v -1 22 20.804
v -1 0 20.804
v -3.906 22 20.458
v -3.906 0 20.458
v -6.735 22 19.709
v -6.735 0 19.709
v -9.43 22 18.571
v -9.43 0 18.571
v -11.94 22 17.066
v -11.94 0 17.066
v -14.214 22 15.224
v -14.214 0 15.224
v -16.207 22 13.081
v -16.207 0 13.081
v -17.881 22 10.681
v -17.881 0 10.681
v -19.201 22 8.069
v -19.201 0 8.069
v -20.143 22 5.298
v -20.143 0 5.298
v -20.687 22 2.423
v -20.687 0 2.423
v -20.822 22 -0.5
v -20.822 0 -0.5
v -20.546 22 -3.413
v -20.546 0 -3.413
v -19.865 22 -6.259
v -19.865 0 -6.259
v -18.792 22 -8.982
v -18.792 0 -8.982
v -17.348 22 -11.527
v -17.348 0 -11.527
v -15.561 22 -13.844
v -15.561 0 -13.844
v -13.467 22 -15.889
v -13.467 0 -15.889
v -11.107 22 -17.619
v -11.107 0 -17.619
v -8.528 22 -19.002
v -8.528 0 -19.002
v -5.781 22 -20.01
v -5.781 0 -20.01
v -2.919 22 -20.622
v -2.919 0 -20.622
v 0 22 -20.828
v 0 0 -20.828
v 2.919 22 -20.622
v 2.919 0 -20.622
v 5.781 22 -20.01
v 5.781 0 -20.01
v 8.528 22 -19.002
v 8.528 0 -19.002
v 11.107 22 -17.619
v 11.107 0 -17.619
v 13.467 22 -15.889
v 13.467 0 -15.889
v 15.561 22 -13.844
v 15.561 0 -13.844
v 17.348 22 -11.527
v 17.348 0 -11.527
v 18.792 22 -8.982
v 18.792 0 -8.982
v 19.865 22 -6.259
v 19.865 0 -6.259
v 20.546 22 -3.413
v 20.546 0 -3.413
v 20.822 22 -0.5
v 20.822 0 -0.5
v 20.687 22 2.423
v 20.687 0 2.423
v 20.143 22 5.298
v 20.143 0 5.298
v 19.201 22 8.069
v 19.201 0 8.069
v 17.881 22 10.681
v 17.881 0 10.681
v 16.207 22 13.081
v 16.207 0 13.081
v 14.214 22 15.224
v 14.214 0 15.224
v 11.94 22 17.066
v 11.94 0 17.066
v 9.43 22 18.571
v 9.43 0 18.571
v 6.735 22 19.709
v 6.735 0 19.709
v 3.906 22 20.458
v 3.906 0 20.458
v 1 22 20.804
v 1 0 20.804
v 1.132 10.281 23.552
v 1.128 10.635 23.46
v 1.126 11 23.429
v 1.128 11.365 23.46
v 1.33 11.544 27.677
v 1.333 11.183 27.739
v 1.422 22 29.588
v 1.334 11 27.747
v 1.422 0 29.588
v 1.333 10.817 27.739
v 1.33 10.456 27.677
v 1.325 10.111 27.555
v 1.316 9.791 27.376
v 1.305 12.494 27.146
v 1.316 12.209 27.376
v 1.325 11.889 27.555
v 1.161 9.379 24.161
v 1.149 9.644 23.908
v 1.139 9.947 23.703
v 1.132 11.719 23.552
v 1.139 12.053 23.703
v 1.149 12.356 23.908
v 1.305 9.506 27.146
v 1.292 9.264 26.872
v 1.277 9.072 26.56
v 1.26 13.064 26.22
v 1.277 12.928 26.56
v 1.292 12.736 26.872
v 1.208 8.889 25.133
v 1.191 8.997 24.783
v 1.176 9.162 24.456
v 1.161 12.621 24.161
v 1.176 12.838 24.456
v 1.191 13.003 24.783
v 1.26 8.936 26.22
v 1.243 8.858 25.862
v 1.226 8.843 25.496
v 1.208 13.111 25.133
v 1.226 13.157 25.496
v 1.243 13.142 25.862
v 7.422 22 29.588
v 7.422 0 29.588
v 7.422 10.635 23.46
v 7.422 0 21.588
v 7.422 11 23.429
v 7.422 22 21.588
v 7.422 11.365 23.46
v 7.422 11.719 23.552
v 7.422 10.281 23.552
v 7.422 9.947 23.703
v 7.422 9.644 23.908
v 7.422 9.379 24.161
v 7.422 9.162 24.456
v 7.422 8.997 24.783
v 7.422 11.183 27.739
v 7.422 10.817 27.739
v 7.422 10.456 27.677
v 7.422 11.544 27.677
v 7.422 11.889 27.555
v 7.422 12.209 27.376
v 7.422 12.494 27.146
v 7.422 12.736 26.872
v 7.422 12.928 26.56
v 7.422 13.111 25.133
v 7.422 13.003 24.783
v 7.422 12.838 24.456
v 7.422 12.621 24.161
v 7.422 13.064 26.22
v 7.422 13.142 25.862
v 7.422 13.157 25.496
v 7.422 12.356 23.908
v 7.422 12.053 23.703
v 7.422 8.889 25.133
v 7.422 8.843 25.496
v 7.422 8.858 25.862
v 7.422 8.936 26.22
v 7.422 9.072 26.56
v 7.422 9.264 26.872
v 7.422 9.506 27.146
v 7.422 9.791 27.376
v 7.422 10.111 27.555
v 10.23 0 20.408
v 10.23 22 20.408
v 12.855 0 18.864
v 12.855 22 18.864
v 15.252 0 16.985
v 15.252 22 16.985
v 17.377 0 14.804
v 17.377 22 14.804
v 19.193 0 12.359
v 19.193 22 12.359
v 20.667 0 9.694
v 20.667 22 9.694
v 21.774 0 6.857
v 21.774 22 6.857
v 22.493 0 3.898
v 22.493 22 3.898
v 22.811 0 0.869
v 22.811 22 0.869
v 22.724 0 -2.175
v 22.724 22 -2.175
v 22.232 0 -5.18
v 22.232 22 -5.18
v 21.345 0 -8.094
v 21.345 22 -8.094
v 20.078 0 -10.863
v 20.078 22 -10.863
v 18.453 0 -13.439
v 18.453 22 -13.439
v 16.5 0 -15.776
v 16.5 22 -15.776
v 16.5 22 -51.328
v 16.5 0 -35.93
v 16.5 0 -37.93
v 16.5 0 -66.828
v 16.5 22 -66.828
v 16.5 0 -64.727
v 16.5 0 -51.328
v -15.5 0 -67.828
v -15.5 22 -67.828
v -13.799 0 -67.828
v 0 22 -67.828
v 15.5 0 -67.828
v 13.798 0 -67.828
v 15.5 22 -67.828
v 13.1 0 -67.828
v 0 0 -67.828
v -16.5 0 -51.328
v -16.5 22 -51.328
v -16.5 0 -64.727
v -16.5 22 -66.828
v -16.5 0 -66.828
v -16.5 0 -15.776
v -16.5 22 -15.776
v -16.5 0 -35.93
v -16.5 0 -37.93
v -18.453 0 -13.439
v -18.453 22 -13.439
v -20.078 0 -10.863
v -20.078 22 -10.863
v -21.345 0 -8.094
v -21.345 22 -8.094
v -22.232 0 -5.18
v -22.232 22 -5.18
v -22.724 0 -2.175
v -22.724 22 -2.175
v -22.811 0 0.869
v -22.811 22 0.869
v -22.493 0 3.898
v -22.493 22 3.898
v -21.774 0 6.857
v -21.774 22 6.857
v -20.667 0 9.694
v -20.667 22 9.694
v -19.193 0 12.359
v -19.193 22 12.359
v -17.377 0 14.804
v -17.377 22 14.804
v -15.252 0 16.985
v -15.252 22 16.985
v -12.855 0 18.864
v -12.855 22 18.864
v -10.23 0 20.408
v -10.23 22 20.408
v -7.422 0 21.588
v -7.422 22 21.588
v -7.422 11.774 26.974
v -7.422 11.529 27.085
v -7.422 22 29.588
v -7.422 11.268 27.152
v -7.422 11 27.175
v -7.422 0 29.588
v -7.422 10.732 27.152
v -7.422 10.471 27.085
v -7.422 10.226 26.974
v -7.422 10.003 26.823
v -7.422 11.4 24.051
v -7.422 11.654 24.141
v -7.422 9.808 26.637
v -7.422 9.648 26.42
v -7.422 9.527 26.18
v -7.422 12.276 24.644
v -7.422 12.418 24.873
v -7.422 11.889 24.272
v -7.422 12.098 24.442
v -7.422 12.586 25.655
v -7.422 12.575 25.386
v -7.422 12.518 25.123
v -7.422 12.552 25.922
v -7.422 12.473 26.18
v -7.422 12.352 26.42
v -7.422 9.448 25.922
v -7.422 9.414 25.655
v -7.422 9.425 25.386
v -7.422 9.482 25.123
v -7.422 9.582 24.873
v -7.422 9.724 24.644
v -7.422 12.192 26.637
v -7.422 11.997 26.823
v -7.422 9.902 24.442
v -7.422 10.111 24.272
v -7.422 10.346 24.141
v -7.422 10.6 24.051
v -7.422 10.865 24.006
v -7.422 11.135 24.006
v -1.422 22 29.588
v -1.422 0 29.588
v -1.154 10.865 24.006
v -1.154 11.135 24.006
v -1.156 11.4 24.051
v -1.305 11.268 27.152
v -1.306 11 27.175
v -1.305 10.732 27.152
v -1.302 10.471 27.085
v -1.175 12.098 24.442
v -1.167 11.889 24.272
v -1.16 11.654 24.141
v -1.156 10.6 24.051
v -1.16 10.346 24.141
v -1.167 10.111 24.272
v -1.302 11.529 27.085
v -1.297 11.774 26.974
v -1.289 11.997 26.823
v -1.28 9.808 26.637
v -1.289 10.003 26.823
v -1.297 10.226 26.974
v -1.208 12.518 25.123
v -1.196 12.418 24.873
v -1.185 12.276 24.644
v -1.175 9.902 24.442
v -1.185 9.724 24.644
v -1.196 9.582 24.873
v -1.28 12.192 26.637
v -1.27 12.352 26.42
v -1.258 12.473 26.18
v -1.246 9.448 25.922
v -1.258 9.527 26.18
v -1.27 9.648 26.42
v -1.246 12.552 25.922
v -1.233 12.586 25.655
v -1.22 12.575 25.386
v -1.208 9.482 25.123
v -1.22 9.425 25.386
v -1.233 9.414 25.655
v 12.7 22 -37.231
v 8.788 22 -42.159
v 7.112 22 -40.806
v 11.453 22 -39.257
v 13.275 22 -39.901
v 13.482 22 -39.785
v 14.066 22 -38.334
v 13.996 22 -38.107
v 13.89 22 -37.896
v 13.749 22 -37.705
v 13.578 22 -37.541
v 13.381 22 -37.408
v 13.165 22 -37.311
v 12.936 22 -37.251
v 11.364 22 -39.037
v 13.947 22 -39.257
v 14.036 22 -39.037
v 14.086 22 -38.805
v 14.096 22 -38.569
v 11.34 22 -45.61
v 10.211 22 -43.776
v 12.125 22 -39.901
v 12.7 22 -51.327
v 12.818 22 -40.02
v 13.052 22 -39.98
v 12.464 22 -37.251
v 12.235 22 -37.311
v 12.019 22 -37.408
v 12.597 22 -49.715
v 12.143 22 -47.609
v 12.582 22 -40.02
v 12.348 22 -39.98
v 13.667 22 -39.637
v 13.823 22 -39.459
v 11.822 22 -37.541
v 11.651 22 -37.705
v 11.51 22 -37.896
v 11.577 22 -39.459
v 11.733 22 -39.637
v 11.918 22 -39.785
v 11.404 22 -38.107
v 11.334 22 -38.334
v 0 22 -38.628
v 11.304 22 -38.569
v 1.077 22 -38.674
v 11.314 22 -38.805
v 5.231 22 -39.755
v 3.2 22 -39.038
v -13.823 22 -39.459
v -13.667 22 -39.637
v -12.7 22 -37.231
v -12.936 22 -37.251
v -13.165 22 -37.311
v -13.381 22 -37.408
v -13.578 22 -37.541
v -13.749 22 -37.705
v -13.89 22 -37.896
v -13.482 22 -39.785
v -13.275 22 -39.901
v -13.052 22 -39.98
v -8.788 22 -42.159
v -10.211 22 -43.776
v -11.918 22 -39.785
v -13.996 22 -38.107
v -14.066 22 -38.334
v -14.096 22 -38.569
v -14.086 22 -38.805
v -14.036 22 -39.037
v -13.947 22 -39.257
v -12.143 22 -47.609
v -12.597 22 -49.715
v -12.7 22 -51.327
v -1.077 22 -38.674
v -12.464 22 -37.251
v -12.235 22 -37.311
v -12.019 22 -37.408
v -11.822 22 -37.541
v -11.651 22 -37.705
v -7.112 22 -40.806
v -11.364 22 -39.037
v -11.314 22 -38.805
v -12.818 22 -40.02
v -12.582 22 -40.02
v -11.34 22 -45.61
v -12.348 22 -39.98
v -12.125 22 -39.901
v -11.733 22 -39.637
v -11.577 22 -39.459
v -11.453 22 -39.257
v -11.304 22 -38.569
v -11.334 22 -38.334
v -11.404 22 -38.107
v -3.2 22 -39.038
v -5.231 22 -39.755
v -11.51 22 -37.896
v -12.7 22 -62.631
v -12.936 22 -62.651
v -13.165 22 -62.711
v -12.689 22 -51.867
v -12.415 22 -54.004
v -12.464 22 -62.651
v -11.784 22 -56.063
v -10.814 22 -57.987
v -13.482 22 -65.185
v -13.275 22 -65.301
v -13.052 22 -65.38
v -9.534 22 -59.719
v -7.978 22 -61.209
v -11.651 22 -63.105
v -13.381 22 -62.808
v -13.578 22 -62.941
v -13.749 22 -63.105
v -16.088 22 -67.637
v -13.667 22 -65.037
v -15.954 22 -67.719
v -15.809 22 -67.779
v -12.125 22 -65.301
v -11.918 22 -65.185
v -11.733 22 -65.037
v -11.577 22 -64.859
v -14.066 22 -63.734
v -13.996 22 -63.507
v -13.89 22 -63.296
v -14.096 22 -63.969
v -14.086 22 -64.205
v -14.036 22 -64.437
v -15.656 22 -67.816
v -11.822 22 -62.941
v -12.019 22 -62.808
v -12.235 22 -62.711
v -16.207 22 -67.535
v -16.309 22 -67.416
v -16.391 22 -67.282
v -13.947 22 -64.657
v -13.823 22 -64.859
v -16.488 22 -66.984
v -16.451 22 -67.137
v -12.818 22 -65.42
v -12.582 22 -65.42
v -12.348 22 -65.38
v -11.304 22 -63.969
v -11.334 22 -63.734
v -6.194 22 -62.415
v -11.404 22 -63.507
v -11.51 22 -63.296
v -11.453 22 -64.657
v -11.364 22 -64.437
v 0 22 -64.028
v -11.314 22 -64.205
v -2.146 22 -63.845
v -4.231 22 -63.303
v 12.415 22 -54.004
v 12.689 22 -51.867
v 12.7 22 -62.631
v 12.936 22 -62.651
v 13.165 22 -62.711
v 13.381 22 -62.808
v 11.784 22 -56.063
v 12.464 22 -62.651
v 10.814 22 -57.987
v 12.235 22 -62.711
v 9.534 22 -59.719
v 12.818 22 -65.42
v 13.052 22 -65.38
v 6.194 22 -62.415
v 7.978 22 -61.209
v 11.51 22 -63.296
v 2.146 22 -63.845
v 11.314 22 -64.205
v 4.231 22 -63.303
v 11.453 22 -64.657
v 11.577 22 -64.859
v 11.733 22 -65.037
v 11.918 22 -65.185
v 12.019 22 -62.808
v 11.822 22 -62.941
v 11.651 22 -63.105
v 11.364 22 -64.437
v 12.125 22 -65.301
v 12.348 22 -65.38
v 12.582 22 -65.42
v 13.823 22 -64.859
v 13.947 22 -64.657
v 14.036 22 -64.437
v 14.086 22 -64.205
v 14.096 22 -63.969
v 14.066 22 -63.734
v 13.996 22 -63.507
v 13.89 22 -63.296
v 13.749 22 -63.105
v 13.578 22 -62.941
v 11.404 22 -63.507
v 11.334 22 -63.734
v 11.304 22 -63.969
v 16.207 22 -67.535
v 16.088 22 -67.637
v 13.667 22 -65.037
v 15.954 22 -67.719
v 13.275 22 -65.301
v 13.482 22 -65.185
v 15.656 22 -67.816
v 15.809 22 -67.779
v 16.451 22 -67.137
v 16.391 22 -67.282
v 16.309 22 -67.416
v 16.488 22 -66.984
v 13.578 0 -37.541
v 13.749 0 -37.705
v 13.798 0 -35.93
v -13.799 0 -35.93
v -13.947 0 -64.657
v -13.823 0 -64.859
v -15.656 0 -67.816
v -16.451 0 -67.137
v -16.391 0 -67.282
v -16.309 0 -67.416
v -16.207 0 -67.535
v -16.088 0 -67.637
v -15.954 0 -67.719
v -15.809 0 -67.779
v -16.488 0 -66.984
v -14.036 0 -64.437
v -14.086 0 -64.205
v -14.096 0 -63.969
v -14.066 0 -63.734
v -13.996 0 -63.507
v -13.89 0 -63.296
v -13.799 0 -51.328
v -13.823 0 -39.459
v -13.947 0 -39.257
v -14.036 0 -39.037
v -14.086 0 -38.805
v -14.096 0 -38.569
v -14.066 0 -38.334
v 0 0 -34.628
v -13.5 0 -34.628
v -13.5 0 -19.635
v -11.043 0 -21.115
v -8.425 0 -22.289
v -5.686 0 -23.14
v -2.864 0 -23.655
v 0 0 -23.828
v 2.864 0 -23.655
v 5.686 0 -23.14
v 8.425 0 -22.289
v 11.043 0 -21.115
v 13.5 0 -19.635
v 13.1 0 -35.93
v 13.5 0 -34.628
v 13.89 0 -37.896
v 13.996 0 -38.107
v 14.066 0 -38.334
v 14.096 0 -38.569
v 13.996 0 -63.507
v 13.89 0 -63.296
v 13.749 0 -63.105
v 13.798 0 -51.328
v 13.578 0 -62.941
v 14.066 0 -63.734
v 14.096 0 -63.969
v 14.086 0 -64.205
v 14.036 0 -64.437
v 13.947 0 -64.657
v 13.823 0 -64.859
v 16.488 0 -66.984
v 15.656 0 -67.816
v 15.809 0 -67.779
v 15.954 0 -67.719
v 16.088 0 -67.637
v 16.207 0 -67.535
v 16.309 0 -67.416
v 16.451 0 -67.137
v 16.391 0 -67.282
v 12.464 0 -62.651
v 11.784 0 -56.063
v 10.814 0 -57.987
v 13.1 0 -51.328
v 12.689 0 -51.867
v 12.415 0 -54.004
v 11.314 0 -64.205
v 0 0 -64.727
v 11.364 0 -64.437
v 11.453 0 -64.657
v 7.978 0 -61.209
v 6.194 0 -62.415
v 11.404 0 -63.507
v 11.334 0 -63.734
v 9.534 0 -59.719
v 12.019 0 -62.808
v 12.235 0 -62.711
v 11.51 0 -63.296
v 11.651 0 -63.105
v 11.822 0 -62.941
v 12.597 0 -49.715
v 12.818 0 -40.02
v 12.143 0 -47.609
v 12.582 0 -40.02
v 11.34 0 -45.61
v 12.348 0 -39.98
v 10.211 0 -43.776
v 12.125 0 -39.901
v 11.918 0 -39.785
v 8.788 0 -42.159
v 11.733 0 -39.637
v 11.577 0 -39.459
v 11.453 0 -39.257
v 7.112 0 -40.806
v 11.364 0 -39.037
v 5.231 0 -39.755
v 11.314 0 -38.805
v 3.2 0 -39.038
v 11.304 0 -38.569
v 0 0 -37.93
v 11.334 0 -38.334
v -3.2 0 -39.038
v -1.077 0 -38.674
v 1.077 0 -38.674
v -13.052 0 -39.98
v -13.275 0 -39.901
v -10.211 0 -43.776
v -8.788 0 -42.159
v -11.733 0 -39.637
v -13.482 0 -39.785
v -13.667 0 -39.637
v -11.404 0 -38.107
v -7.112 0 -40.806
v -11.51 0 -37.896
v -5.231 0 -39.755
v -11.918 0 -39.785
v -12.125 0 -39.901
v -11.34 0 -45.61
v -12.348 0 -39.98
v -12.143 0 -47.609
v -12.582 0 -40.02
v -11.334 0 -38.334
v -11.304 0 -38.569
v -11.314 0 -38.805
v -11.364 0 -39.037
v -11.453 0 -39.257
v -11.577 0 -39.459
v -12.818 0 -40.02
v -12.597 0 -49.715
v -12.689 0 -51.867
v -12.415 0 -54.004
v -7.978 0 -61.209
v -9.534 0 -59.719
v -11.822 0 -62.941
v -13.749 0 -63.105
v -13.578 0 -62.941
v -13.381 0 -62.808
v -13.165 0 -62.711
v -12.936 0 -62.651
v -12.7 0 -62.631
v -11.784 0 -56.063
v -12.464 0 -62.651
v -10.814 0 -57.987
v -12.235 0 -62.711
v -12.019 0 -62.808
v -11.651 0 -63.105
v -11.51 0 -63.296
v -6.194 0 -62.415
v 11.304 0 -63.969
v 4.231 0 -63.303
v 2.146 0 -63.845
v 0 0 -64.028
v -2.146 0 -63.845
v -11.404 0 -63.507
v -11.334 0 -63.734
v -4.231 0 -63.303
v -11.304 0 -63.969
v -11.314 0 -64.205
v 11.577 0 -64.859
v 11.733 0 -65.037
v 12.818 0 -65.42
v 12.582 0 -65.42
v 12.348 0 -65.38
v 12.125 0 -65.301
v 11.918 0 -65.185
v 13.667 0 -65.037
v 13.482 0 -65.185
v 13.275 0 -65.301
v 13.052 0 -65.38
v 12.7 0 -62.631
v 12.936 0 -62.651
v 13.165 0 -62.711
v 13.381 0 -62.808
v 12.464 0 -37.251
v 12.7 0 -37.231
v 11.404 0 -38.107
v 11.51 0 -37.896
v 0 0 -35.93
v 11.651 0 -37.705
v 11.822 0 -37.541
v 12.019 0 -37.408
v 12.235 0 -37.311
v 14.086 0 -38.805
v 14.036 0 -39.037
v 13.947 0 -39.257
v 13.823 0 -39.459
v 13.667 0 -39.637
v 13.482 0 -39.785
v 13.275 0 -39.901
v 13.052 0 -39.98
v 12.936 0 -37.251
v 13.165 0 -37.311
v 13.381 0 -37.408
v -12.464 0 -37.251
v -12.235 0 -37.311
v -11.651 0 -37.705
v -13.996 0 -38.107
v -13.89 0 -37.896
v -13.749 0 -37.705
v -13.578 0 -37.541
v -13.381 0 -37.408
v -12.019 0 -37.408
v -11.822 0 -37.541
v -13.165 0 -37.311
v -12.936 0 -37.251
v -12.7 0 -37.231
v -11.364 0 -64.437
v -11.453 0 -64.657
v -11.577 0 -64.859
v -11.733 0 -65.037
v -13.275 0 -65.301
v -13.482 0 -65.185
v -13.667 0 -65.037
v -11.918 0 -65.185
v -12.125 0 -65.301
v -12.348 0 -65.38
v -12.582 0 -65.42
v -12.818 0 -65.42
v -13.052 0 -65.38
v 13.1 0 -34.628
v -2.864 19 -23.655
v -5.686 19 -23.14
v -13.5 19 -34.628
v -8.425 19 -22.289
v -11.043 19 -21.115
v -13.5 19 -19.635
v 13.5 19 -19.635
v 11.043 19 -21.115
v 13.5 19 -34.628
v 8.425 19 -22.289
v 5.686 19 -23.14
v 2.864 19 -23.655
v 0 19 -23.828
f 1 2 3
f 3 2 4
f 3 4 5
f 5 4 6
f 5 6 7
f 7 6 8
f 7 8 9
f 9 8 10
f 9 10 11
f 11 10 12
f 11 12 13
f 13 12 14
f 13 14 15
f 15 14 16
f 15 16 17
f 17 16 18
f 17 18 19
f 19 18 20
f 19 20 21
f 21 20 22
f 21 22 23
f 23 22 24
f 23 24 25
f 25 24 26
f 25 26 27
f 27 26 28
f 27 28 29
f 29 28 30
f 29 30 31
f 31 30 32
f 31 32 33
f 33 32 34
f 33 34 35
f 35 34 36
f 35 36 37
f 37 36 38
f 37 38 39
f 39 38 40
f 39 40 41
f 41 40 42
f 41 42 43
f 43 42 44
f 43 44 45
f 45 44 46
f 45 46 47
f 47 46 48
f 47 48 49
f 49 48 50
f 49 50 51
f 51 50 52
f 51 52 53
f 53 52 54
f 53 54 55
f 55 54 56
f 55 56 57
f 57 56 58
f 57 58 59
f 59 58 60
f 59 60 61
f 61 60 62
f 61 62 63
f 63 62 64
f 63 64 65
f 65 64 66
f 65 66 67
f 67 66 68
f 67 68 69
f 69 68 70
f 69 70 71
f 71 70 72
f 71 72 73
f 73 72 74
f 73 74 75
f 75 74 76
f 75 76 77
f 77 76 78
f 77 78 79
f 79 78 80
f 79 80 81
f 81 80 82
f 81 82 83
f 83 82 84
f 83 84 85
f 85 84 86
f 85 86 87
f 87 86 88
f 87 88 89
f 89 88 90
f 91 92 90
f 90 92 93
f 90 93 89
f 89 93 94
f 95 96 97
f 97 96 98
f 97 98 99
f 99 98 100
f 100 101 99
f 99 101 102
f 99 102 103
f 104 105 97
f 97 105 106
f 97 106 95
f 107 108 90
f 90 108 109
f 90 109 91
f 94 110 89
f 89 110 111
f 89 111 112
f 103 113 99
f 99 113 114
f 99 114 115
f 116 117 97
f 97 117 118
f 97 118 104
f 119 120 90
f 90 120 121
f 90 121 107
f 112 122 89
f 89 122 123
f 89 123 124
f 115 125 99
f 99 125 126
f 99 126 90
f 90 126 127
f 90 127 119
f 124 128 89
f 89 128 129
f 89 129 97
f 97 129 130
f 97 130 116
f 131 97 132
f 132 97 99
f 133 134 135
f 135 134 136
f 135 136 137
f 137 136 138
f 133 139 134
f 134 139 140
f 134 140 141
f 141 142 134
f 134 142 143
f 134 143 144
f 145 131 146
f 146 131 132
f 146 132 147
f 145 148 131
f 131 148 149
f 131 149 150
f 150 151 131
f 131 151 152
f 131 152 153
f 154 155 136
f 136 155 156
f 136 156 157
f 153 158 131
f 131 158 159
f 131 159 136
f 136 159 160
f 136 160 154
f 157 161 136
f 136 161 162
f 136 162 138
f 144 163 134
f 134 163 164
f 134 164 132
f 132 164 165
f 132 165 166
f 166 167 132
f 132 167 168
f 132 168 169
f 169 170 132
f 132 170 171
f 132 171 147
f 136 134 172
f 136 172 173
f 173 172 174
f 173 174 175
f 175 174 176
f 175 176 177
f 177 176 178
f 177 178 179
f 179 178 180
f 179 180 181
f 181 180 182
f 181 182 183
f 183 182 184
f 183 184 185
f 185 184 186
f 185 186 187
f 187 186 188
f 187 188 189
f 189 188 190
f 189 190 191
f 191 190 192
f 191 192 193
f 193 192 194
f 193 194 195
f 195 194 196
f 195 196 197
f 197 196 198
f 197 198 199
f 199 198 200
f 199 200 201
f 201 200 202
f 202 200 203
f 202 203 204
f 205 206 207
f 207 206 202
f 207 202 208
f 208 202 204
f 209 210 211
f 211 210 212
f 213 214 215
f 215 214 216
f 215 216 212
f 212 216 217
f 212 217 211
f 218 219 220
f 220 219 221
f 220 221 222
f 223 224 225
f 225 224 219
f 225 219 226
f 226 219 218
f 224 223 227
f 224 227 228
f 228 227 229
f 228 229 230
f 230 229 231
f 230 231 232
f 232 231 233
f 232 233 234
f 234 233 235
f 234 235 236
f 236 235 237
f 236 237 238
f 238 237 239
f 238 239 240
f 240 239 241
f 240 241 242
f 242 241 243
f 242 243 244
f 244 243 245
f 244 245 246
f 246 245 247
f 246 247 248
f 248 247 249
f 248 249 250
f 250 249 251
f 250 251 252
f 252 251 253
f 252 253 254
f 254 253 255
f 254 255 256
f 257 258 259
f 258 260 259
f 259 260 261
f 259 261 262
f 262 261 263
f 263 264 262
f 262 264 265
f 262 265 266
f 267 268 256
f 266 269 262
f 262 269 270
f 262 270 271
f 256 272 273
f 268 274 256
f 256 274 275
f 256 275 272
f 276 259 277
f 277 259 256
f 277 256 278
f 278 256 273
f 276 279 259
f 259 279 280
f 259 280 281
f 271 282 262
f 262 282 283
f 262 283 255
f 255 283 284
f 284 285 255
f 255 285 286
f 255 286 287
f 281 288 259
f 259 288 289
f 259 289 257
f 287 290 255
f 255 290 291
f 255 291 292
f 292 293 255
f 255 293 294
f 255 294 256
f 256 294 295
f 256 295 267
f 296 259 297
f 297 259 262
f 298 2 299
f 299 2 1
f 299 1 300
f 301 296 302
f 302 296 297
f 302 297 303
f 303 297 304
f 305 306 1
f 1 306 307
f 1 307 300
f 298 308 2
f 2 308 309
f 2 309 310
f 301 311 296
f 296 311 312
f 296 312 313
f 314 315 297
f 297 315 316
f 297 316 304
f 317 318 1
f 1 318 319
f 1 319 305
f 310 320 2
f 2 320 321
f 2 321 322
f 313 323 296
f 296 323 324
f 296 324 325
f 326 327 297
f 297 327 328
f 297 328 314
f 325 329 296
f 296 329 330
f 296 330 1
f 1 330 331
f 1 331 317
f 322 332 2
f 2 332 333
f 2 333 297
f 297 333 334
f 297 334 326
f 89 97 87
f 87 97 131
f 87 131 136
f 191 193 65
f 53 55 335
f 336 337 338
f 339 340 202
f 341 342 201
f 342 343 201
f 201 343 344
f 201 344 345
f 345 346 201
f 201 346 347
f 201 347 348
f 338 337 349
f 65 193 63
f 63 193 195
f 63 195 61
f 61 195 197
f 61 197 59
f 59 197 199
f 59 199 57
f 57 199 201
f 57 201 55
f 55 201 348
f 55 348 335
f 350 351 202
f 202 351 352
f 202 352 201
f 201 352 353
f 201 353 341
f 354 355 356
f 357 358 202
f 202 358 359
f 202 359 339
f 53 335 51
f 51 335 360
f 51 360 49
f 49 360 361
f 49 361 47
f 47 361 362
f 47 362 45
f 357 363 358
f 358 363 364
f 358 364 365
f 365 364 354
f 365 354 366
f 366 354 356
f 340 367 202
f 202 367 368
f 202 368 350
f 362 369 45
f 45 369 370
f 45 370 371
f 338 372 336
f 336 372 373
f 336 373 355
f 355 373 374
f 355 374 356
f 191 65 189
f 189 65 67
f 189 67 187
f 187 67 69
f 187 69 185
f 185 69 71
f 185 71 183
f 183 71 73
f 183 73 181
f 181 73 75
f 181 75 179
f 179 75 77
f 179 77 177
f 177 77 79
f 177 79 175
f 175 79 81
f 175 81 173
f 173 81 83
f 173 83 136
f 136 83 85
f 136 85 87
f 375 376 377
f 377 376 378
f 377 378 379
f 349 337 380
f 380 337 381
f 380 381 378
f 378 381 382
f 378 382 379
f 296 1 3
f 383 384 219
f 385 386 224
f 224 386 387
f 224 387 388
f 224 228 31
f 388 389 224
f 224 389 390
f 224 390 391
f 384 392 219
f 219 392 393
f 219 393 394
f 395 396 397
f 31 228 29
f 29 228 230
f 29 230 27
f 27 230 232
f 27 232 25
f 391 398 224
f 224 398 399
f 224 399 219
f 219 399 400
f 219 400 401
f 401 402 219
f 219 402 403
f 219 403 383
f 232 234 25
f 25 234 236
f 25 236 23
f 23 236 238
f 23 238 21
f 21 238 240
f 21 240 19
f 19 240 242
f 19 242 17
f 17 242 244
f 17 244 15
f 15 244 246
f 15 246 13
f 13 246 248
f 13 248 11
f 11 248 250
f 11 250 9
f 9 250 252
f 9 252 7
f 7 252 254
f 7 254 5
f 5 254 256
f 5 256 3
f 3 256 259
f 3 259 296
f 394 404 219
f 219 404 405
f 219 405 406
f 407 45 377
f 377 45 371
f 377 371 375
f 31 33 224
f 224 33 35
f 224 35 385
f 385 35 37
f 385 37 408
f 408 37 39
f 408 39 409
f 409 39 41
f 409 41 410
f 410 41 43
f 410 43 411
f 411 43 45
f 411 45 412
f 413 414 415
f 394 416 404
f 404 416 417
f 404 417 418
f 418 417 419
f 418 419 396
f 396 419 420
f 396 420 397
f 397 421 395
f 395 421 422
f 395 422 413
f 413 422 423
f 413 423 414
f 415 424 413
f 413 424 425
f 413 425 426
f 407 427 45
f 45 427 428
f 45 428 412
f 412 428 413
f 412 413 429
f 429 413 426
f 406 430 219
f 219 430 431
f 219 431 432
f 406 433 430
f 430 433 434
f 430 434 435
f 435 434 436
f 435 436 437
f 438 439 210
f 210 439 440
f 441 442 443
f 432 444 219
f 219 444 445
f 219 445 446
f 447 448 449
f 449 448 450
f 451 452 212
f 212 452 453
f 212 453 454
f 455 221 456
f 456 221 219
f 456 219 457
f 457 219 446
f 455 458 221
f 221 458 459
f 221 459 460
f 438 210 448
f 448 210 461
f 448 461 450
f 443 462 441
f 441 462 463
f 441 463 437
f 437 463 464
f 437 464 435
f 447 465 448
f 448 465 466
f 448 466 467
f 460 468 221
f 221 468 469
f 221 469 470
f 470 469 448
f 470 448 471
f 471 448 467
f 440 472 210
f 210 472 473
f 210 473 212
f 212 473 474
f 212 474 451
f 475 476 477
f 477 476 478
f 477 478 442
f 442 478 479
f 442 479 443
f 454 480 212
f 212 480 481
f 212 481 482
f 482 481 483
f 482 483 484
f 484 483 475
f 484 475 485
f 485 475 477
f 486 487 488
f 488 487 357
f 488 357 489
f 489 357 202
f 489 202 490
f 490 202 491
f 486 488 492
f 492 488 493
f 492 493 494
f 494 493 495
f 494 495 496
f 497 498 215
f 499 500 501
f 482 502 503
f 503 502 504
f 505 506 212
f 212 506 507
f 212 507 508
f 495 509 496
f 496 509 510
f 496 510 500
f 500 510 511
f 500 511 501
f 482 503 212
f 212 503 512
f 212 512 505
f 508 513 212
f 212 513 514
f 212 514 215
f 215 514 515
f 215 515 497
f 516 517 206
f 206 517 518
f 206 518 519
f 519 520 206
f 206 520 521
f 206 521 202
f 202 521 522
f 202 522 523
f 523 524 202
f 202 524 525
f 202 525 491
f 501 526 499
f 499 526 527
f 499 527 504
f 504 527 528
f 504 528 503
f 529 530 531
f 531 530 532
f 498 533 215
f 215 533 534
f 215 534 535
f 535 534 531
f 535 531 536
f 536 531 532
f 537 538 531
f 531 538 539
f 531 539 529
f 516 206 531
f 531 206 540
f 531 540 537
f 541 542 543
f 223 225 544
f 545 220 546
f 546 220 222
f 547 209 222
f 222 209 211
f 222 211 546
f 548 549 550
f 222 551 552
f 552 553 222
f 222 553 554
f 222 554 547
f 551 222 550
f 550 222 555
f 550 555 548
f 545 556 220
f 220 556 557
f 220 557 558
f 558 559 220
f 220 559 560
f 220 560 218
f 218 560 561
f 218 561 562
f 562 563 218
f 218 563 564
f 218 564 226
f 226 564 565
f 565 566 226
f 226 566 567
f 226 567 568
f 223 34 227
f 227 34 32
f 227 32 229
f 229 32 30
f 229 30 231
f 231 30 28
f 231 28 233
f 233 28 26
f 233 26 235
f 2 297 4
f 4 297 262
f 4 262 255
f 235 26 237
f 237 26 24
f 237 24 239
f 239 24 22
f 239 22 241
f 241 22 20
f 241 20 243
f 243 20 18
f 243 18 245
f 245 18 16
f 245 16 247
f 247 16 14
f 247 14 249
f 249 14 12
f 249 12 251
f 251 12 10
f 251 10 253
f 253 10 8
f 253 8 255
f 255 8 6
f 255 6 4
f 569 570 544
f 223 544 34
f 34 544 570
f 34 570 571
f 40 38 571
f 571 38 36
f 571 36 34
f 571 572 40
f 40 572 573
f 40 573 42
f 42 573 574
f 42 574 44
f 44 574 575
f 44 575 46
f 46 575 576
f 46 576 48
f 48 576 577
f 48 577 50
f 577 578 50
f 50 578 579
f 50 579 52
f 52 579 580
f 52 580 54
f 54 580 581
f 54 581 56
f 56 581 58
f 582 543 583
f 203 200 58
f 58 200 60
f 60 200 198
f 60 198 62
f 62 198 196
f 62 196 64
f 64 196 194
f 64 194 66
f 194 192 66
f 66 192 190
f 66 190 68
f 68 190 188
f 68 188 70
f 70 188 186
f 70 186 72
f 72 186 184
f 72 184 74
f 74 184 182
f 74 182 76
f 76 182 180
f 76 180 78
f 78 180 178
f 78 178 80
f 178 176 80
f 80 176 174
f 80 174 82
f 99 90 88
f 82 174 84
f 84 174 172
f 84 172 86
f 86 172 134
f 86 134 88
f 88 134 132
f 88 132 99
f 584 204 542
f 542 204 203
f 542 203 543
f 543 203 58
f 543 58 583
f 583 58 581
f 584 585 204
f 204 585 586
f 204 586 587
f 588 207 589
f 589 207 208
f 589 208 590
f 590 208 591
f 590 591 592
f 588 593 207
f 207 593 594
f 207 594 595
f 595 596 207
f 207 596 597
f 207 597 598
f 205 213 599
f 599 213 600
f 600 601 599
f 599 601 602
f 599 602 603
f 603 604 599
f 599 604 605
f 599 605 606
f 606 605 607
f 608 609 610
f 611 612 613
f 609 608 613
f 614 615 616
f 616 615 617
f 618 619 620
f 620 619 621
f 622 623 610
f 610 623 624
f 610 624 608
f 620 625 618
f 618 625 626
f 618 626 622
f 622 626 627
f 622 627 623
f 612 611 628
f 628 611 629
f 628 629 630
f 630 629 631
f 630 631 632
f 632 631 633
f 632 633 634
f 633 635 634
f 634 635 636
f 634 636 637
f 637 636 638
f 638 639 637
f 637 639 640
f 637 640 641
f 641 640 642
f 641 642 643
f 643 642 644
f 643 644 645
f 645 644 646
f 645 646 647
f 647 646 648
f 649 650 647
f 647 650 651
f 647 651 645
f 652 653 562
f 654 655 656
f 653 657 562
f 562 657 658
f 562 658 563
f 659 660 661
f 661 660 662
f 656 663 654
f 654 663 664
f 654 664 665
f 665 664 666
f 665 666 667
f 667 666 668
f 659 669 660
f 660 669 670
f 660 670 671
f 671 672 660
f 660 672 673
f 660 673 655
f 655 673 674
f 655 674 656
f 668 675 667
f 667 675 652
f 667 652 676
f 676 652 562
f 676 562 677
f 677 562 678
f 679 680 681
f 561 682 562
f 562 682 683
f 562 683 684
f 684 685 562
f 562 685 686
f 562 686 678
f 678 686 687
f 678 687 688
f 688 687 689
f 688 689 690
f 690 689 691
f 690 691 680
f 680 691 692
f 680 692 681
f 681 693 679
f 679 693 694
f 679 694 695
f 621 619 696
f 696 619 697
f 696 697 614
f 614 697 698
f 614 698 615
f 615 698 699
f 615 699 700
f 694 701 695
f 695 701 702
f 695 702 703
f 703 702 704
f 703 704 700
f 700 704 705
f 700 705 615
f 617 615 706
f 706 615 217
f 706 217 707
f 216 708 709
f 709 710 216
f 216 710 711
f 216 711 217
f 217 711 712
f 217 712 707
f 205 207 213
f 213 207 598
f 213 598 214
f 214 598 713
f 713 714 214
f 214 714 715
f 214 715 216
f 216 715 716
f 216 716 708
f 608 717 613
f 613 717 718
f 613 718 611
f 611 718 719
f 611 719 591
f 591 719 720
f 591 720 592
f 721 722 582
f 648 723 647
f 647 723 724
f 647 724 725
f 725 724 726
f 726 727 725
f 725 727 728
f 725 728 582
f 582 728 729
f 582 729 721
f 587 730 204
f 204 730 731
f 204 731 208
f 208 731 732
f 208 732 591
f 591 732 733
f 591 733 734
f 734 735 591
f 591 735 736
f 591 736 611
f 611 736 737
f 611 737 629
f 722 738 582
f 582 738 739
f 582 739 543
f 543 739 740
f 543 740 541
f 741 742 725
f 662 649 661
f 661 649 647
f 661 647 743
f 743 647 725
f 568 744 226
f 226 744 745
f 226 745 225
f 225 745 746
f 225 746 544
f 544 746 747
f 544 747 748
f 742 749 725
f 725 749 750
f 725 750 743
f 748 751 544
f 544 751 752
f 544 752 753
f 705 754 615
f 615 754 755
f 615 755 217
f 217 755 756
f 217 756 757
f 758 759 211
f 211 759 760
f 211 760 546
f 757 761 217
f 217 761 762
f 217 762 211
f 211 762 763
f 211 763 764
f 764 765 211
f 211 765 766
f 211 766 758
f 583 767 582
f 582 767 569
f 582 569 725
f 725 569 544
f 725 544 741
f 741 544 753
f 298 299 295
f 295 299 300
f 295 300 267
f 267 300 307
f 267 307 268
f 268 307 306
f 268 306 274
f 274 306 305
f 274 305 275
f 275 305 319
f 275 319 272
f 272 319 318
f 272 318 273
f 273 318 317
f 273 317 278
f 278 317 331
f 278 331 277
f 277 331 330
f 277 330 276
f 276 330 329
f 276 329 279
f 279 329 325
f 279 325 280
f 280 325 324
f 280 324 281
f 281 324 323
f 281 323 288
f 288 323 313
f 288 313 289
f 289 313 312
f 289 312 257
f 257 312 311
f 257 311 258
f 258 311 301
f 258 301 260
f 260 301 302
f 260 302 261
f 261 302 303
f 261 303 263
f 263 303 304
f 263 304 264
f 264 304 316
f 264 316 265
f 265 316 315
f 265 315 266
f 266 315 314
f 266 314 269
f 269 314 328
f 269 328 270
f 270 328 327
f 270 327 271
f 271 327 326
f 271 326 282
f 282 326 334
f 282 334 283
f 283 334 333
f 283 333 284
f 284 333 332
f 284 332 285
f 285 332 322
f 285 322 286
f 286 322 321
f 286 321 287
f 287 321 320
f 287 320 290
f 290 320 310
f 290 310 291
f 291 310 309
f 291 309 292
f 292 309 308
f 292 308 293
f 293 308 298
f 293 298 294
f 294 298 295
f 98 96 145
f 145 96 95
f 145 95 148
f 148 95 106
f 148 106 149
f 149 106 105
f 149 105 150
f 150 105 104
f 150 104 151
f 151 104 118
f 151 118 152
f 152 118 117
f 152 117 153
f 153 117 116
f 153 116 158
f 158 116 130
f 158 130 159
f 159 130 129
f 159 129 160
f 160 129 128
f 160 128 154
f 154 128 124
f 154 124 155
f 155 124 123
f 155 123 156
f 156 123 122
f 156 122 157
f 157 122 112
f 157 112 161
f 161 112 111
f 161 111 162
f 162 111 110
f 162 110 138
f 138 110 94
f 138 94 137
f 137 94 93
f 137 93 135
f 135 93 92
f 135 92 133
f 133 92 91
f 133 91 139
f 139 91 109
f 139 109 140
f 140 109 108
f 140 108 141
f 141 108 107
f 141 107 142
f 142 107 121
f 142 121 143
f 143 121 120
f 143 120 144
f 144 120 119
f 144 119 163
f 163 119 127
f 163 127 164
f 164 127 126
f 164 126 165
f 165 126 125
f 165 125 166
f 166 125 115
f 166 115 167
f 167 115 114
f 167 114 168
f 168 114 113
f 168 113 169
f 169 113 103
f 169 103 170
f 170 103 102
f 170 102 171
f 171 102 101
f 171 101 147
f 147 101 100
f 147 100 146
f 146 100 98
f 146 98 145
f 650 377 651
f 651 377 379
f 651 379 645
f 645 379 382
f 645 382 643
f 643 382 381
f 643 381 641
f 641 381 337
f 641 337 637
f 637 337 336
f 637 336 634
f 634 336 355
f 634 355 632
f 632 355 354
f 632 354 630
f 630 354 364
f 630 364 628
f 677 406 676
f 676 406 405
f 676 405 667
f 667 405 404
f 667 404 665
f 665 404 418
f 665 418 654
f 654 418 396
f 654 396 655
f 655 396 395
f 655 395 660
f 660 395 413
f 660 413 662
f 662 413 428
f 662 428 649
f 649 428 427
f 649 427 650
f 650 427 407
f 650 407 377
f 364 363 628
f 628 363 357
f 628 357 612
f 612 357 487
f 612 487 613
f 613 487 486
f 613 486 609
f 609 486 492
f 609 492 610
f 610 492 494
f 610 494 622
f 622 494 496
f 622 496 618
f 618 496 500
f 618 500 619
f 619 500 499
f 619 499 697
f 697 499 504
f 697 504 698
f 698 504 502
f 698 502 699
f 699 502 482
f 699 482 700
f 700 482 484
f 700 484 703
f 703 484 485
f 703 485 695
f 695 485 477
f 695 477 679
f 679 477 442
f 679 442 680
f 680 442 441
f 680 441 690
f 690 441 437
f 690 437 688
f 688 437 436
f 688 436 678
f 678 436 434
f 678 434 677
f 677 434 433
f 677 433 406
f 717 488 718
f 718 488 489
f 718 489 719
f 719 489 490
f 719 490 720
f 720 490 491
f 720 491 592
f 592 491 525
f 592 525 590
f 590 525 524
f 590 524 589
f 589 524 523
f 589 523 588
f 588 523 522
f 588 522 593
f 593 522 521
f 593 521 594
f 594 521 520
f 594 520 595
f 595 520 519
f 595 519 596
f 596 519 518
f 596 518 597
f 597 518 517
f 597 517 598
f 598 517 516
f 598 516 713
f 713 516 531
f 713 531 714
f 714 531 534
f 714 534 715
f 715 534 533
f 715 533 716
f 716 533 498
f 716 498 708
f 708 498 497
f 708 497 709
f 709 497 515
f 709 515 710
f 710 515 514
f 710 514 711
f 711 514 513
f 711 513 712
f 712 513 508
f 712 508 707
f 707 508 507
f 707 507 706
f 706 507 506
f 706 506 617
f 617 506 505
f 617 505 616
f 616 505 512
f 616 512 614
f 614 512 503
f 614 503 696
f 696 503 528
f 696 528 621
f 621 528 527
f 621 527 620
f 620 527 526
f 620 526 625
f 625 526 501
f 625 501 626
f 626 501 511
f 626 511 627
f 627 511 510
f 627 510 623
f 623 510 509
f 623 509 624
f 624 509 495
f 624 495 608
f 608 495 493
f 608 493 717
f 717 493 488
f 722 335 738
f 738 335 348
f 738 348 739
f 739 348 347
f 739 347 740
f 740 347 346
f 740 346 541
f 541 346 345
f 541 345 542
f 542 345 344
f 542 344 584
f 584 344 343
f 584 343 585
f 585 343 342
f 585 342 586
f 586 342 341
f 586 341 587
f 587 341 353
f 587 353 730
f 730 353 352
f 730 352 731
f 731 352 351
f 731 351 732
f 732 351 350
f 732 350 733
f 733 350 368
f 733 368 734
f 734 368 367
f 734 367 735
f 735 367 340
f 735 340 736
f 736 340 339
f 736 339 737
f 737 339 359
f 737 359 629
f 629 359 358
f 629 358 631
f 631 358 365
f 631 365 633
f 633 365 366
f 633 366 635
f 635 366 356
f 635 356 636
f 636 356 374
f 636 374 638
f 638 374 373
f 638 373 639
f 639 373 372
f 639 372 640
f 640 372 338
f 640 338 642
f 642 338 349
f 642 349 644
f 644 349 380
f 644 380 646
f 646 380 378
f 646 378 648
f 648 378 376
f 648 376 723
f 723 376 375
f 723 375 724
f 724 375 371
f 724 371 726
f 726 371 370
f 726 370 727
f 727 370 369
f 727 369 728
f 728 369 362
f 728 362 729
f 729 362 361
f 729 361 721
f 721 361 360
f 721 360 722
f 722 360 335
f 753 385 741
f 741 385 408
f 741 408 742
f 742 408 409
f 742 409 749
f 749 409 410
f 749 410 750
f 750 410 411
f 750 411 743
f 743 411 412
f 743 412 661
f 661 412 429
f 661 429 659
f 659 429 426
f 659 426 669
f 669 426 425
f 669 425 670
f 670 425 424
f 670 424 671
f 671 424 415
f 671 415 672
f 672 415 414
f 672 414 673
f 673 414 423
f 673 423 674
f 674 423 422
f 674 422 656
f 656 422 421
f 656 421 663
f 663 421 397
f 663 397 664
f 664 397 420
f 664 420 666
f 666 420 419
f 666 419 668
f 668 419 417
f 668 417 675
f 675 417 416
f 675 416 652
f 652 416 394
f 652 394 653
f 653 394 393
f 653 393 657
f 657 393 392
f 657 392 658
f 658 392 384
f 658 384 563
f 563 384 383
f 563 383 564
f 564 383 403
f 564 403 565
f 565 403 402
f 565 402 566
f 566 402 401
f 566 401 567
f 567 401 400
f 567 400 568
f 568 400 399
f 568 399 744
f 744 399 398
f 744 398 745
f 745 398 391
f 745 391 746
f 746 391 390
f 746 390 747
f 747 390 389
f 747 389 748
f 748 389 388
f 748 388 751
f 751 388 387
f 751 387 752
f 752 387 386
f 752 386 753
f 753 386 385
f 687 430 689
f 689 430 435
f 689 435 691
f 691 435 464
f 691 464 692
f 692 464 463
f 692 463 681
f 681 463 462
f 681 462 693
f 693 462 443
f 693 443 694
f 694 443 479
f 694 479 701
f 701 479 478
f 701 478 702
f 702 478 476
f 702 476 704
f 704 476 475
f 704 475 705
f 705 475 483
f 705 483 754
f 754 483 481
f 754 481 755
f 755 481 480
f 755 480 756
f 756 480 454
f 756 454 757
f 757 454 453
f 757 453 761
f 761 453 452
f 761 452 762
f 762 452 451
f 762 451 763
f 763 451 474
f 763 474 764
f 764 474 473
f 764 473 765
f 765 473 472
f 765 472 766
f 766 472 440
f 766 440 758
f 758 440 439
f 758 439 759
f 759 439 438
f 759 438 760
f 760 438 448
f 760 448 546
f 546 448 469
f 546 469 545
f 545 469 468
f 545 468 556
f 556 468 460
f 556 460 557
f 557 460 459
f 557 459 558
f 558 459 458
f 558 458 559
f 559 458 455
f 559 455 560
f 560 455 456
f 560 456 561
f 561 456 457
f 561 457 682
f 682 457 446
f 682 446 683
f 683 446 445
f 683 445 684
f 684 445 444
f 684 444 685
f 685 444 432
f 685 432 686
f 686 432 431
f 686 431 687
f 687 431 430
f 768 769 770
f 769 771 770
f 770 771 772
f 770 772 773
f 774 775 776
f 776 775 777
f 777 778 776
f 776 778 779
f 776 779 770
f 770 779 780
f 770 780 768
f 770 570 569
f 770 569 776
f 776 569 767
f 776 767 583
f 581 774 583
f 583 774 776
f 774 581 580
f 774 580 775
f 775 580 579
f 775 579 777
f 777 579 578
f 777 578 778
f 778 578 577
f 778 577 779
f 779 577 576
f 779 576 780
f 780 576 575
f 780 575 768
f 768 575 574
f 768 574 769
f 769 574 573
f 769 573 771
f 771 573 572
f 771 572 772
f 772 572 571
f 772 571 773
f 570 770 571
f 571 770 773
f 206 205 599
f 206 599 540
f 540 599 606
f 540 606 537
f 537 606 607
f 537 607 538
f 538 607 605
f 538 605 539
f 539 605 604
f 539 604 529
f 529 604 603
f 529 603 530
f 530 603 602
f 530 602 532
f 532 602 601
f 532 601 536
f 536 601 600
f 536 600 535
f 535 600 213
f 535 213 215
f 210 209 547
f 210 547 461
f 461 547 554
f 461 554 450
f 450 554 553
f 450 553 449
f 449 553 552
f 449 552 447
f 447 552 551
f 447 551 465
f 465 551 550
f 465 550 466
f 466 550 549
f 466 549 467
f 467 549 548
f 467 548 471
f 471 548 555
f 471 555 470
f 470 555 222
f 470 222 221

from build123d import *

# Parameters (mm, degrees)
BOSS_EXTRUDE1_DEPTH = 22
CUT_EXTRUDE1_REACH  = 79.458
SKETCH4_R           = 1.5875
CUT_EXTRUDE2_REACH  = 79.458
SKETCH5_R           = 2.159
SKETCH7_R           = 12.7
CUT_EXTRUDE3_DEPTH  = 75.871591195
SKETCH8_R           = 1.397
CUT_EXTRUDE4_DEPTH  = 75.871591195
CUT_EXTRUDE5_DEPTH  = 19
FILLET1_R           = 1


with BuildPart() as part:
    # Sketch1 → Boss-Extrude1 (new body)
    with BuildSketch(Plane(origin=(0, 0, 0), x_dir=(1, 0, 0), z_dir=(0, 1, 0))):
        with BuildLine():
            Line((1, -20.803980004), (1.422212938, -29.587689527))
            Line((1.422212938, -29.587689527), (7.422212938, -29.587689527))
            Line((7.422212938, -29.587689527), (7.422212938, -21.587689527))
            ThreePointArc((7.422212938, -21.587689527), (22.182667824, -5.389511316), (16.5, 15.775537519))
            Line((16.5, 15.775537519), (16.5, 67.828))
            Line((16.5, 67.828), (-16.5, 67.828))
            Line((-16.5, 67.828), (-16.5, 15.775537519))
            ThreePointArc((-16.5, 15.775537519), (-22.182667824, -5.389511316), (-7.422212938, -21.587689527))
            Line((-7.422212938, -21.587689527), (-7.422212938, -29.587689527))
            Line((-7.422212938, -29.587689527), (-1.422212938, -29.587689527))
            Line((-1.422212938, -29.587689527), (-1, -20.803980004))
            ThreePointArc((-1, -20.803980004), (0, 20.828), (1, -20.803980004))
        make_face()
    extrude(amount=BOSS_EXTRUDE1_DEPTH)

    # Cut-Extrude1: up to this plane
    cut_extrude1_end = Plane(origin=(-1, 22, 20.803980004), z_dir=(-0.9988467449508261, 0, -0.04801229114653368))
    # Sketch4 → Cut-Extrude1 (cut, up to the surface)
    with BuildSketch(Plane.ZY.offset(7.422212938), mode=Mode.PRIVATE) as cut_extrude1_sk1:
        with Locations((25.587689527, 11)):
            Circle(SKETCH4_R)
    cut_extrude1_tool1 = split(extrude(cut_extrude1_sk1.sketch, amount=-CUT_EXTRUDE1_REACH, mode=Mode.PRIVATE), bisect_by=cut_extrude1_end, keep=Keep.BOTH, mode=Mode.PRIVATE)
    add(cut_extrude1_tool1.solids().sort_by_distance((-7.422213, 11, 25.58769))[0], mode=Mode.SUBTRACT)

    # Cut-Extrude2: up to this plane
    cut_extrude2_end = Plane(origin=(1, 22, 20.803980004), z_dir=(0.9988467449508261, 0, -0.04801229114653392))
    # Sketch5 → Cut-Extrude2 (cut, up to the surface)
    with BuildSketch(Plane(origin=(7.422212938, 0, 0), x_dir=(0, 0, -1), z_dir=(1, 0, 0)), mode=Mode.PRIVATE) as cut_extrude2_sk1:
        with Locations((-25.587689527, 11)):
            Circle(SKETCH5_R)
    cut_extrude2_tool1 = split(extrude(cut_extrude2_sk1.sketch, amount=-CUT_EXTRUDE2_REACH, mode=Mode.PRIVATE), bisect_by=cut_extrude2_end, keep=Keep.BOTH, mode=Mode.PRIVATE)
    add(cut_extrude2_tool1.solids().sort_by_distance((7.422213, 11, 25.58769))[0], mode=Mode.SUBTRACT)

    # Sketch7 → Cut-Extrude3 (cut, through all)
    with BuildSketch(Plane.XZ):
        with Locations(Location((0, -51.328, 0), (0, 0, 270))):
            Circle(SKETCH7_R)
    extrude(amount=-CUT_EXTRUDE3_DEPTH, mode=Mode.SUBTRACT)

    # Sketch8 → Cut-Extrude4 (cut, through all)
    with BuildSketch(Plane(origin=(0, 22, 0), x_dir=(1, 0, 0), z_dir=(0, 1, 0))):
        with Locations(Location((12.7, 64.028, 0), (0, 0, 270))):
            Circle(SKETCH8_R)
        with Locations(Location((12.7, 38.628, 0), (0, 0, 270))):
            Circle(SKETCH8_R)
        with Locations(Location((-12.7, 38.628, 0), (0, 0, 270))):
            Circle(SKETCH8_R)
        with Locations(Location((-12.7, 64.028, 0), (0, 0, 270))):
            Circle(SKETCH8_R)
    extrude(amount=-CUT_EXTRUDE4_DEPTH, mode=Mode.SUBTRACT)

    # Sketch9 → Cut-Extrude5 (cut)
    with BuildSketch(Plane.XZ):
        with BuildLine():
            Line((-13.5, -34.628), (13.5, -34.628))
            Line((13.5, -34.628), (13.5, -19.634754493))
            ThreePointArc((13.5, -19.634754493), (0, -23.828), (-13.5, -19.634754493))
            Line((-13.5, -19.634754493), (-13.5, -34.628))
        make_face()
    extrude(amount=-CUT_EXTRUDE5_DEPTH, mode=Mode.SUBTRACT)

    # Fillet1
    fillet1_edges = [part.edges().sort_by_distance(p)[0] for p in [
        (-16.5, 11, -67.828),
        (16.5, 11, -67.828),
    ]]
    fillet(fillet1_edges, radius=FILLET1_R)


solid = part.part
